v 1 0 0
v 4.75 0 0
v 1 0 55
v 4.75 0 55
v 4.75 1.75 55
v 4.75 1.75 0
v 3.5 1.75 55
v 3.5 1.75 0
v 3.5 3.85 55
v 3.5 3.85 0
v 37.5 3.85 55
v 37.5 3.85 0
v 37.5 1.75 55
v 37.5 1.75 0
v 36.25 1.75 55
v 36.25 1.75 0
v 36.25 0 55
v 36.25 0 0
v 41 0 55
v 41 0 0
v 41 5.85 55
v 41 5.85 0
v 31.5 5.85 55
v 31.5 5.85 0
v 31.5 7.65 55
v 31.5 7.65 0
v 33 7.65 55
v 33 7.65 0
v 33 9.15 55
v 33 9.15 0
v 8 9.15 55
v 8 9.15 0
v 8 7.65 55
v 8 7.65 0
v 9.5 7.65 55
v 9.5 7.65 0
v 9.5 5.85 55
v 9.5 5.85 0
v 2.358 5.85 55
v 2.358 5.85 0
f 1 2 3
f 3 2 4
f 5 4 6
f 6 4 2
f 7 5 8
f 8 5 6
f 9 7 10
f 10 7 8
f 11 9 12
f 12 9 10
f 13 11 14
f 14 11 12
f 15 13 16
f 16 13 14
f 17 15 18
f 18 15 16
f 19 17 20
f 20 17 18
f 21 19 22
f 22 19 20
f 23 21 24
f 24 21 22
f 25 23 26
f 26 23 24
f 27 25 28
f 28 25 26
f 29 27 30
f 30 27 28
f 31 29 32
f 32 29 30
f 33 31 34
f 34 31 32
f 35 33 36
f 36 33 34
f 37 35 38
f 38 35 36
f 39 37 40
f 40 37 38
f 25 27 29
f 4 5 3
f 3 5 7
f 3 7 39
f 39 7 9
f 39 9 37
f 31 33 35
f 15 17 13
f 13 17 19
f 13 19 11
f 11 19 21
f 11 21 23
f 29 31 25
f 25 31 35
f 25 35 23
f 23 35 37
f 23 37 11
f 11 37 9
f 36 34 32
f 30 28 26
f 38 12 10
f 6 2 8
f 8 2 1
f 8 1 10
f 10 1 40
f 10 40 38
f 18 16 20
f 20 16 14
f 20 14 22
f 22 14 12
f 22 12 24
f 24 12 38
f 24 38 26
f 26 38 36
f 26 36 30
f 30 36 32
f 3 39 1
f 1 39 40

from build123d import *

# Parameters (mm, degrees)
BOSS_EXTRUDE1_DEPTH = 55
CUT_EXTRUDE2_REACH  = 57


with BuildPart() as part:
    # Sketch2 → Boss-Extrude1 (new body)
    with BuildSketch(Plane.XY):
        Polygon((0, 0), (0, 5.85), (9.5, 5.85), (9.5, 7.65), (8, 7.65), (8, 9.15), (33, 9.15), (33, 7.65), (31.5, 7.65), (31.5, 5.85), (41, 5.85), (41, 0), (36.25, 0), (36.25, 1.75), (37.5, 1.75), (37.5, 3.85), (3.5, 3.85), (3.5, 1.75), (4.75, 1.75), (4.75, 0), align=None)
    extrude(amount=BOSS_EXTRUDE1_DEPTH)

    # Sketch3 → Cut-Extrude2 (cut, up to next)
    with BuildSketch(Plane.XY.offset(55), mode=Mode.PRIVATE) as cut_extrude2_sk1:
        Polygon((1, 0), (0, 0), (0, 5.85), (2.358395181, 5.85), align=None)
    cut_extrude2_tool1 = extrude(cut_extrude2_sk1.sketch, amount=-CUT_EXTRUDE2_REACH, mode=Mode.PRIVATE) & part.part
    add(cut_extrude2_tool1.solids().sort_by_distance((0.885385, 3.319366, 55))[0], mode=Mode.SUBTRACT)


solid = part.part
